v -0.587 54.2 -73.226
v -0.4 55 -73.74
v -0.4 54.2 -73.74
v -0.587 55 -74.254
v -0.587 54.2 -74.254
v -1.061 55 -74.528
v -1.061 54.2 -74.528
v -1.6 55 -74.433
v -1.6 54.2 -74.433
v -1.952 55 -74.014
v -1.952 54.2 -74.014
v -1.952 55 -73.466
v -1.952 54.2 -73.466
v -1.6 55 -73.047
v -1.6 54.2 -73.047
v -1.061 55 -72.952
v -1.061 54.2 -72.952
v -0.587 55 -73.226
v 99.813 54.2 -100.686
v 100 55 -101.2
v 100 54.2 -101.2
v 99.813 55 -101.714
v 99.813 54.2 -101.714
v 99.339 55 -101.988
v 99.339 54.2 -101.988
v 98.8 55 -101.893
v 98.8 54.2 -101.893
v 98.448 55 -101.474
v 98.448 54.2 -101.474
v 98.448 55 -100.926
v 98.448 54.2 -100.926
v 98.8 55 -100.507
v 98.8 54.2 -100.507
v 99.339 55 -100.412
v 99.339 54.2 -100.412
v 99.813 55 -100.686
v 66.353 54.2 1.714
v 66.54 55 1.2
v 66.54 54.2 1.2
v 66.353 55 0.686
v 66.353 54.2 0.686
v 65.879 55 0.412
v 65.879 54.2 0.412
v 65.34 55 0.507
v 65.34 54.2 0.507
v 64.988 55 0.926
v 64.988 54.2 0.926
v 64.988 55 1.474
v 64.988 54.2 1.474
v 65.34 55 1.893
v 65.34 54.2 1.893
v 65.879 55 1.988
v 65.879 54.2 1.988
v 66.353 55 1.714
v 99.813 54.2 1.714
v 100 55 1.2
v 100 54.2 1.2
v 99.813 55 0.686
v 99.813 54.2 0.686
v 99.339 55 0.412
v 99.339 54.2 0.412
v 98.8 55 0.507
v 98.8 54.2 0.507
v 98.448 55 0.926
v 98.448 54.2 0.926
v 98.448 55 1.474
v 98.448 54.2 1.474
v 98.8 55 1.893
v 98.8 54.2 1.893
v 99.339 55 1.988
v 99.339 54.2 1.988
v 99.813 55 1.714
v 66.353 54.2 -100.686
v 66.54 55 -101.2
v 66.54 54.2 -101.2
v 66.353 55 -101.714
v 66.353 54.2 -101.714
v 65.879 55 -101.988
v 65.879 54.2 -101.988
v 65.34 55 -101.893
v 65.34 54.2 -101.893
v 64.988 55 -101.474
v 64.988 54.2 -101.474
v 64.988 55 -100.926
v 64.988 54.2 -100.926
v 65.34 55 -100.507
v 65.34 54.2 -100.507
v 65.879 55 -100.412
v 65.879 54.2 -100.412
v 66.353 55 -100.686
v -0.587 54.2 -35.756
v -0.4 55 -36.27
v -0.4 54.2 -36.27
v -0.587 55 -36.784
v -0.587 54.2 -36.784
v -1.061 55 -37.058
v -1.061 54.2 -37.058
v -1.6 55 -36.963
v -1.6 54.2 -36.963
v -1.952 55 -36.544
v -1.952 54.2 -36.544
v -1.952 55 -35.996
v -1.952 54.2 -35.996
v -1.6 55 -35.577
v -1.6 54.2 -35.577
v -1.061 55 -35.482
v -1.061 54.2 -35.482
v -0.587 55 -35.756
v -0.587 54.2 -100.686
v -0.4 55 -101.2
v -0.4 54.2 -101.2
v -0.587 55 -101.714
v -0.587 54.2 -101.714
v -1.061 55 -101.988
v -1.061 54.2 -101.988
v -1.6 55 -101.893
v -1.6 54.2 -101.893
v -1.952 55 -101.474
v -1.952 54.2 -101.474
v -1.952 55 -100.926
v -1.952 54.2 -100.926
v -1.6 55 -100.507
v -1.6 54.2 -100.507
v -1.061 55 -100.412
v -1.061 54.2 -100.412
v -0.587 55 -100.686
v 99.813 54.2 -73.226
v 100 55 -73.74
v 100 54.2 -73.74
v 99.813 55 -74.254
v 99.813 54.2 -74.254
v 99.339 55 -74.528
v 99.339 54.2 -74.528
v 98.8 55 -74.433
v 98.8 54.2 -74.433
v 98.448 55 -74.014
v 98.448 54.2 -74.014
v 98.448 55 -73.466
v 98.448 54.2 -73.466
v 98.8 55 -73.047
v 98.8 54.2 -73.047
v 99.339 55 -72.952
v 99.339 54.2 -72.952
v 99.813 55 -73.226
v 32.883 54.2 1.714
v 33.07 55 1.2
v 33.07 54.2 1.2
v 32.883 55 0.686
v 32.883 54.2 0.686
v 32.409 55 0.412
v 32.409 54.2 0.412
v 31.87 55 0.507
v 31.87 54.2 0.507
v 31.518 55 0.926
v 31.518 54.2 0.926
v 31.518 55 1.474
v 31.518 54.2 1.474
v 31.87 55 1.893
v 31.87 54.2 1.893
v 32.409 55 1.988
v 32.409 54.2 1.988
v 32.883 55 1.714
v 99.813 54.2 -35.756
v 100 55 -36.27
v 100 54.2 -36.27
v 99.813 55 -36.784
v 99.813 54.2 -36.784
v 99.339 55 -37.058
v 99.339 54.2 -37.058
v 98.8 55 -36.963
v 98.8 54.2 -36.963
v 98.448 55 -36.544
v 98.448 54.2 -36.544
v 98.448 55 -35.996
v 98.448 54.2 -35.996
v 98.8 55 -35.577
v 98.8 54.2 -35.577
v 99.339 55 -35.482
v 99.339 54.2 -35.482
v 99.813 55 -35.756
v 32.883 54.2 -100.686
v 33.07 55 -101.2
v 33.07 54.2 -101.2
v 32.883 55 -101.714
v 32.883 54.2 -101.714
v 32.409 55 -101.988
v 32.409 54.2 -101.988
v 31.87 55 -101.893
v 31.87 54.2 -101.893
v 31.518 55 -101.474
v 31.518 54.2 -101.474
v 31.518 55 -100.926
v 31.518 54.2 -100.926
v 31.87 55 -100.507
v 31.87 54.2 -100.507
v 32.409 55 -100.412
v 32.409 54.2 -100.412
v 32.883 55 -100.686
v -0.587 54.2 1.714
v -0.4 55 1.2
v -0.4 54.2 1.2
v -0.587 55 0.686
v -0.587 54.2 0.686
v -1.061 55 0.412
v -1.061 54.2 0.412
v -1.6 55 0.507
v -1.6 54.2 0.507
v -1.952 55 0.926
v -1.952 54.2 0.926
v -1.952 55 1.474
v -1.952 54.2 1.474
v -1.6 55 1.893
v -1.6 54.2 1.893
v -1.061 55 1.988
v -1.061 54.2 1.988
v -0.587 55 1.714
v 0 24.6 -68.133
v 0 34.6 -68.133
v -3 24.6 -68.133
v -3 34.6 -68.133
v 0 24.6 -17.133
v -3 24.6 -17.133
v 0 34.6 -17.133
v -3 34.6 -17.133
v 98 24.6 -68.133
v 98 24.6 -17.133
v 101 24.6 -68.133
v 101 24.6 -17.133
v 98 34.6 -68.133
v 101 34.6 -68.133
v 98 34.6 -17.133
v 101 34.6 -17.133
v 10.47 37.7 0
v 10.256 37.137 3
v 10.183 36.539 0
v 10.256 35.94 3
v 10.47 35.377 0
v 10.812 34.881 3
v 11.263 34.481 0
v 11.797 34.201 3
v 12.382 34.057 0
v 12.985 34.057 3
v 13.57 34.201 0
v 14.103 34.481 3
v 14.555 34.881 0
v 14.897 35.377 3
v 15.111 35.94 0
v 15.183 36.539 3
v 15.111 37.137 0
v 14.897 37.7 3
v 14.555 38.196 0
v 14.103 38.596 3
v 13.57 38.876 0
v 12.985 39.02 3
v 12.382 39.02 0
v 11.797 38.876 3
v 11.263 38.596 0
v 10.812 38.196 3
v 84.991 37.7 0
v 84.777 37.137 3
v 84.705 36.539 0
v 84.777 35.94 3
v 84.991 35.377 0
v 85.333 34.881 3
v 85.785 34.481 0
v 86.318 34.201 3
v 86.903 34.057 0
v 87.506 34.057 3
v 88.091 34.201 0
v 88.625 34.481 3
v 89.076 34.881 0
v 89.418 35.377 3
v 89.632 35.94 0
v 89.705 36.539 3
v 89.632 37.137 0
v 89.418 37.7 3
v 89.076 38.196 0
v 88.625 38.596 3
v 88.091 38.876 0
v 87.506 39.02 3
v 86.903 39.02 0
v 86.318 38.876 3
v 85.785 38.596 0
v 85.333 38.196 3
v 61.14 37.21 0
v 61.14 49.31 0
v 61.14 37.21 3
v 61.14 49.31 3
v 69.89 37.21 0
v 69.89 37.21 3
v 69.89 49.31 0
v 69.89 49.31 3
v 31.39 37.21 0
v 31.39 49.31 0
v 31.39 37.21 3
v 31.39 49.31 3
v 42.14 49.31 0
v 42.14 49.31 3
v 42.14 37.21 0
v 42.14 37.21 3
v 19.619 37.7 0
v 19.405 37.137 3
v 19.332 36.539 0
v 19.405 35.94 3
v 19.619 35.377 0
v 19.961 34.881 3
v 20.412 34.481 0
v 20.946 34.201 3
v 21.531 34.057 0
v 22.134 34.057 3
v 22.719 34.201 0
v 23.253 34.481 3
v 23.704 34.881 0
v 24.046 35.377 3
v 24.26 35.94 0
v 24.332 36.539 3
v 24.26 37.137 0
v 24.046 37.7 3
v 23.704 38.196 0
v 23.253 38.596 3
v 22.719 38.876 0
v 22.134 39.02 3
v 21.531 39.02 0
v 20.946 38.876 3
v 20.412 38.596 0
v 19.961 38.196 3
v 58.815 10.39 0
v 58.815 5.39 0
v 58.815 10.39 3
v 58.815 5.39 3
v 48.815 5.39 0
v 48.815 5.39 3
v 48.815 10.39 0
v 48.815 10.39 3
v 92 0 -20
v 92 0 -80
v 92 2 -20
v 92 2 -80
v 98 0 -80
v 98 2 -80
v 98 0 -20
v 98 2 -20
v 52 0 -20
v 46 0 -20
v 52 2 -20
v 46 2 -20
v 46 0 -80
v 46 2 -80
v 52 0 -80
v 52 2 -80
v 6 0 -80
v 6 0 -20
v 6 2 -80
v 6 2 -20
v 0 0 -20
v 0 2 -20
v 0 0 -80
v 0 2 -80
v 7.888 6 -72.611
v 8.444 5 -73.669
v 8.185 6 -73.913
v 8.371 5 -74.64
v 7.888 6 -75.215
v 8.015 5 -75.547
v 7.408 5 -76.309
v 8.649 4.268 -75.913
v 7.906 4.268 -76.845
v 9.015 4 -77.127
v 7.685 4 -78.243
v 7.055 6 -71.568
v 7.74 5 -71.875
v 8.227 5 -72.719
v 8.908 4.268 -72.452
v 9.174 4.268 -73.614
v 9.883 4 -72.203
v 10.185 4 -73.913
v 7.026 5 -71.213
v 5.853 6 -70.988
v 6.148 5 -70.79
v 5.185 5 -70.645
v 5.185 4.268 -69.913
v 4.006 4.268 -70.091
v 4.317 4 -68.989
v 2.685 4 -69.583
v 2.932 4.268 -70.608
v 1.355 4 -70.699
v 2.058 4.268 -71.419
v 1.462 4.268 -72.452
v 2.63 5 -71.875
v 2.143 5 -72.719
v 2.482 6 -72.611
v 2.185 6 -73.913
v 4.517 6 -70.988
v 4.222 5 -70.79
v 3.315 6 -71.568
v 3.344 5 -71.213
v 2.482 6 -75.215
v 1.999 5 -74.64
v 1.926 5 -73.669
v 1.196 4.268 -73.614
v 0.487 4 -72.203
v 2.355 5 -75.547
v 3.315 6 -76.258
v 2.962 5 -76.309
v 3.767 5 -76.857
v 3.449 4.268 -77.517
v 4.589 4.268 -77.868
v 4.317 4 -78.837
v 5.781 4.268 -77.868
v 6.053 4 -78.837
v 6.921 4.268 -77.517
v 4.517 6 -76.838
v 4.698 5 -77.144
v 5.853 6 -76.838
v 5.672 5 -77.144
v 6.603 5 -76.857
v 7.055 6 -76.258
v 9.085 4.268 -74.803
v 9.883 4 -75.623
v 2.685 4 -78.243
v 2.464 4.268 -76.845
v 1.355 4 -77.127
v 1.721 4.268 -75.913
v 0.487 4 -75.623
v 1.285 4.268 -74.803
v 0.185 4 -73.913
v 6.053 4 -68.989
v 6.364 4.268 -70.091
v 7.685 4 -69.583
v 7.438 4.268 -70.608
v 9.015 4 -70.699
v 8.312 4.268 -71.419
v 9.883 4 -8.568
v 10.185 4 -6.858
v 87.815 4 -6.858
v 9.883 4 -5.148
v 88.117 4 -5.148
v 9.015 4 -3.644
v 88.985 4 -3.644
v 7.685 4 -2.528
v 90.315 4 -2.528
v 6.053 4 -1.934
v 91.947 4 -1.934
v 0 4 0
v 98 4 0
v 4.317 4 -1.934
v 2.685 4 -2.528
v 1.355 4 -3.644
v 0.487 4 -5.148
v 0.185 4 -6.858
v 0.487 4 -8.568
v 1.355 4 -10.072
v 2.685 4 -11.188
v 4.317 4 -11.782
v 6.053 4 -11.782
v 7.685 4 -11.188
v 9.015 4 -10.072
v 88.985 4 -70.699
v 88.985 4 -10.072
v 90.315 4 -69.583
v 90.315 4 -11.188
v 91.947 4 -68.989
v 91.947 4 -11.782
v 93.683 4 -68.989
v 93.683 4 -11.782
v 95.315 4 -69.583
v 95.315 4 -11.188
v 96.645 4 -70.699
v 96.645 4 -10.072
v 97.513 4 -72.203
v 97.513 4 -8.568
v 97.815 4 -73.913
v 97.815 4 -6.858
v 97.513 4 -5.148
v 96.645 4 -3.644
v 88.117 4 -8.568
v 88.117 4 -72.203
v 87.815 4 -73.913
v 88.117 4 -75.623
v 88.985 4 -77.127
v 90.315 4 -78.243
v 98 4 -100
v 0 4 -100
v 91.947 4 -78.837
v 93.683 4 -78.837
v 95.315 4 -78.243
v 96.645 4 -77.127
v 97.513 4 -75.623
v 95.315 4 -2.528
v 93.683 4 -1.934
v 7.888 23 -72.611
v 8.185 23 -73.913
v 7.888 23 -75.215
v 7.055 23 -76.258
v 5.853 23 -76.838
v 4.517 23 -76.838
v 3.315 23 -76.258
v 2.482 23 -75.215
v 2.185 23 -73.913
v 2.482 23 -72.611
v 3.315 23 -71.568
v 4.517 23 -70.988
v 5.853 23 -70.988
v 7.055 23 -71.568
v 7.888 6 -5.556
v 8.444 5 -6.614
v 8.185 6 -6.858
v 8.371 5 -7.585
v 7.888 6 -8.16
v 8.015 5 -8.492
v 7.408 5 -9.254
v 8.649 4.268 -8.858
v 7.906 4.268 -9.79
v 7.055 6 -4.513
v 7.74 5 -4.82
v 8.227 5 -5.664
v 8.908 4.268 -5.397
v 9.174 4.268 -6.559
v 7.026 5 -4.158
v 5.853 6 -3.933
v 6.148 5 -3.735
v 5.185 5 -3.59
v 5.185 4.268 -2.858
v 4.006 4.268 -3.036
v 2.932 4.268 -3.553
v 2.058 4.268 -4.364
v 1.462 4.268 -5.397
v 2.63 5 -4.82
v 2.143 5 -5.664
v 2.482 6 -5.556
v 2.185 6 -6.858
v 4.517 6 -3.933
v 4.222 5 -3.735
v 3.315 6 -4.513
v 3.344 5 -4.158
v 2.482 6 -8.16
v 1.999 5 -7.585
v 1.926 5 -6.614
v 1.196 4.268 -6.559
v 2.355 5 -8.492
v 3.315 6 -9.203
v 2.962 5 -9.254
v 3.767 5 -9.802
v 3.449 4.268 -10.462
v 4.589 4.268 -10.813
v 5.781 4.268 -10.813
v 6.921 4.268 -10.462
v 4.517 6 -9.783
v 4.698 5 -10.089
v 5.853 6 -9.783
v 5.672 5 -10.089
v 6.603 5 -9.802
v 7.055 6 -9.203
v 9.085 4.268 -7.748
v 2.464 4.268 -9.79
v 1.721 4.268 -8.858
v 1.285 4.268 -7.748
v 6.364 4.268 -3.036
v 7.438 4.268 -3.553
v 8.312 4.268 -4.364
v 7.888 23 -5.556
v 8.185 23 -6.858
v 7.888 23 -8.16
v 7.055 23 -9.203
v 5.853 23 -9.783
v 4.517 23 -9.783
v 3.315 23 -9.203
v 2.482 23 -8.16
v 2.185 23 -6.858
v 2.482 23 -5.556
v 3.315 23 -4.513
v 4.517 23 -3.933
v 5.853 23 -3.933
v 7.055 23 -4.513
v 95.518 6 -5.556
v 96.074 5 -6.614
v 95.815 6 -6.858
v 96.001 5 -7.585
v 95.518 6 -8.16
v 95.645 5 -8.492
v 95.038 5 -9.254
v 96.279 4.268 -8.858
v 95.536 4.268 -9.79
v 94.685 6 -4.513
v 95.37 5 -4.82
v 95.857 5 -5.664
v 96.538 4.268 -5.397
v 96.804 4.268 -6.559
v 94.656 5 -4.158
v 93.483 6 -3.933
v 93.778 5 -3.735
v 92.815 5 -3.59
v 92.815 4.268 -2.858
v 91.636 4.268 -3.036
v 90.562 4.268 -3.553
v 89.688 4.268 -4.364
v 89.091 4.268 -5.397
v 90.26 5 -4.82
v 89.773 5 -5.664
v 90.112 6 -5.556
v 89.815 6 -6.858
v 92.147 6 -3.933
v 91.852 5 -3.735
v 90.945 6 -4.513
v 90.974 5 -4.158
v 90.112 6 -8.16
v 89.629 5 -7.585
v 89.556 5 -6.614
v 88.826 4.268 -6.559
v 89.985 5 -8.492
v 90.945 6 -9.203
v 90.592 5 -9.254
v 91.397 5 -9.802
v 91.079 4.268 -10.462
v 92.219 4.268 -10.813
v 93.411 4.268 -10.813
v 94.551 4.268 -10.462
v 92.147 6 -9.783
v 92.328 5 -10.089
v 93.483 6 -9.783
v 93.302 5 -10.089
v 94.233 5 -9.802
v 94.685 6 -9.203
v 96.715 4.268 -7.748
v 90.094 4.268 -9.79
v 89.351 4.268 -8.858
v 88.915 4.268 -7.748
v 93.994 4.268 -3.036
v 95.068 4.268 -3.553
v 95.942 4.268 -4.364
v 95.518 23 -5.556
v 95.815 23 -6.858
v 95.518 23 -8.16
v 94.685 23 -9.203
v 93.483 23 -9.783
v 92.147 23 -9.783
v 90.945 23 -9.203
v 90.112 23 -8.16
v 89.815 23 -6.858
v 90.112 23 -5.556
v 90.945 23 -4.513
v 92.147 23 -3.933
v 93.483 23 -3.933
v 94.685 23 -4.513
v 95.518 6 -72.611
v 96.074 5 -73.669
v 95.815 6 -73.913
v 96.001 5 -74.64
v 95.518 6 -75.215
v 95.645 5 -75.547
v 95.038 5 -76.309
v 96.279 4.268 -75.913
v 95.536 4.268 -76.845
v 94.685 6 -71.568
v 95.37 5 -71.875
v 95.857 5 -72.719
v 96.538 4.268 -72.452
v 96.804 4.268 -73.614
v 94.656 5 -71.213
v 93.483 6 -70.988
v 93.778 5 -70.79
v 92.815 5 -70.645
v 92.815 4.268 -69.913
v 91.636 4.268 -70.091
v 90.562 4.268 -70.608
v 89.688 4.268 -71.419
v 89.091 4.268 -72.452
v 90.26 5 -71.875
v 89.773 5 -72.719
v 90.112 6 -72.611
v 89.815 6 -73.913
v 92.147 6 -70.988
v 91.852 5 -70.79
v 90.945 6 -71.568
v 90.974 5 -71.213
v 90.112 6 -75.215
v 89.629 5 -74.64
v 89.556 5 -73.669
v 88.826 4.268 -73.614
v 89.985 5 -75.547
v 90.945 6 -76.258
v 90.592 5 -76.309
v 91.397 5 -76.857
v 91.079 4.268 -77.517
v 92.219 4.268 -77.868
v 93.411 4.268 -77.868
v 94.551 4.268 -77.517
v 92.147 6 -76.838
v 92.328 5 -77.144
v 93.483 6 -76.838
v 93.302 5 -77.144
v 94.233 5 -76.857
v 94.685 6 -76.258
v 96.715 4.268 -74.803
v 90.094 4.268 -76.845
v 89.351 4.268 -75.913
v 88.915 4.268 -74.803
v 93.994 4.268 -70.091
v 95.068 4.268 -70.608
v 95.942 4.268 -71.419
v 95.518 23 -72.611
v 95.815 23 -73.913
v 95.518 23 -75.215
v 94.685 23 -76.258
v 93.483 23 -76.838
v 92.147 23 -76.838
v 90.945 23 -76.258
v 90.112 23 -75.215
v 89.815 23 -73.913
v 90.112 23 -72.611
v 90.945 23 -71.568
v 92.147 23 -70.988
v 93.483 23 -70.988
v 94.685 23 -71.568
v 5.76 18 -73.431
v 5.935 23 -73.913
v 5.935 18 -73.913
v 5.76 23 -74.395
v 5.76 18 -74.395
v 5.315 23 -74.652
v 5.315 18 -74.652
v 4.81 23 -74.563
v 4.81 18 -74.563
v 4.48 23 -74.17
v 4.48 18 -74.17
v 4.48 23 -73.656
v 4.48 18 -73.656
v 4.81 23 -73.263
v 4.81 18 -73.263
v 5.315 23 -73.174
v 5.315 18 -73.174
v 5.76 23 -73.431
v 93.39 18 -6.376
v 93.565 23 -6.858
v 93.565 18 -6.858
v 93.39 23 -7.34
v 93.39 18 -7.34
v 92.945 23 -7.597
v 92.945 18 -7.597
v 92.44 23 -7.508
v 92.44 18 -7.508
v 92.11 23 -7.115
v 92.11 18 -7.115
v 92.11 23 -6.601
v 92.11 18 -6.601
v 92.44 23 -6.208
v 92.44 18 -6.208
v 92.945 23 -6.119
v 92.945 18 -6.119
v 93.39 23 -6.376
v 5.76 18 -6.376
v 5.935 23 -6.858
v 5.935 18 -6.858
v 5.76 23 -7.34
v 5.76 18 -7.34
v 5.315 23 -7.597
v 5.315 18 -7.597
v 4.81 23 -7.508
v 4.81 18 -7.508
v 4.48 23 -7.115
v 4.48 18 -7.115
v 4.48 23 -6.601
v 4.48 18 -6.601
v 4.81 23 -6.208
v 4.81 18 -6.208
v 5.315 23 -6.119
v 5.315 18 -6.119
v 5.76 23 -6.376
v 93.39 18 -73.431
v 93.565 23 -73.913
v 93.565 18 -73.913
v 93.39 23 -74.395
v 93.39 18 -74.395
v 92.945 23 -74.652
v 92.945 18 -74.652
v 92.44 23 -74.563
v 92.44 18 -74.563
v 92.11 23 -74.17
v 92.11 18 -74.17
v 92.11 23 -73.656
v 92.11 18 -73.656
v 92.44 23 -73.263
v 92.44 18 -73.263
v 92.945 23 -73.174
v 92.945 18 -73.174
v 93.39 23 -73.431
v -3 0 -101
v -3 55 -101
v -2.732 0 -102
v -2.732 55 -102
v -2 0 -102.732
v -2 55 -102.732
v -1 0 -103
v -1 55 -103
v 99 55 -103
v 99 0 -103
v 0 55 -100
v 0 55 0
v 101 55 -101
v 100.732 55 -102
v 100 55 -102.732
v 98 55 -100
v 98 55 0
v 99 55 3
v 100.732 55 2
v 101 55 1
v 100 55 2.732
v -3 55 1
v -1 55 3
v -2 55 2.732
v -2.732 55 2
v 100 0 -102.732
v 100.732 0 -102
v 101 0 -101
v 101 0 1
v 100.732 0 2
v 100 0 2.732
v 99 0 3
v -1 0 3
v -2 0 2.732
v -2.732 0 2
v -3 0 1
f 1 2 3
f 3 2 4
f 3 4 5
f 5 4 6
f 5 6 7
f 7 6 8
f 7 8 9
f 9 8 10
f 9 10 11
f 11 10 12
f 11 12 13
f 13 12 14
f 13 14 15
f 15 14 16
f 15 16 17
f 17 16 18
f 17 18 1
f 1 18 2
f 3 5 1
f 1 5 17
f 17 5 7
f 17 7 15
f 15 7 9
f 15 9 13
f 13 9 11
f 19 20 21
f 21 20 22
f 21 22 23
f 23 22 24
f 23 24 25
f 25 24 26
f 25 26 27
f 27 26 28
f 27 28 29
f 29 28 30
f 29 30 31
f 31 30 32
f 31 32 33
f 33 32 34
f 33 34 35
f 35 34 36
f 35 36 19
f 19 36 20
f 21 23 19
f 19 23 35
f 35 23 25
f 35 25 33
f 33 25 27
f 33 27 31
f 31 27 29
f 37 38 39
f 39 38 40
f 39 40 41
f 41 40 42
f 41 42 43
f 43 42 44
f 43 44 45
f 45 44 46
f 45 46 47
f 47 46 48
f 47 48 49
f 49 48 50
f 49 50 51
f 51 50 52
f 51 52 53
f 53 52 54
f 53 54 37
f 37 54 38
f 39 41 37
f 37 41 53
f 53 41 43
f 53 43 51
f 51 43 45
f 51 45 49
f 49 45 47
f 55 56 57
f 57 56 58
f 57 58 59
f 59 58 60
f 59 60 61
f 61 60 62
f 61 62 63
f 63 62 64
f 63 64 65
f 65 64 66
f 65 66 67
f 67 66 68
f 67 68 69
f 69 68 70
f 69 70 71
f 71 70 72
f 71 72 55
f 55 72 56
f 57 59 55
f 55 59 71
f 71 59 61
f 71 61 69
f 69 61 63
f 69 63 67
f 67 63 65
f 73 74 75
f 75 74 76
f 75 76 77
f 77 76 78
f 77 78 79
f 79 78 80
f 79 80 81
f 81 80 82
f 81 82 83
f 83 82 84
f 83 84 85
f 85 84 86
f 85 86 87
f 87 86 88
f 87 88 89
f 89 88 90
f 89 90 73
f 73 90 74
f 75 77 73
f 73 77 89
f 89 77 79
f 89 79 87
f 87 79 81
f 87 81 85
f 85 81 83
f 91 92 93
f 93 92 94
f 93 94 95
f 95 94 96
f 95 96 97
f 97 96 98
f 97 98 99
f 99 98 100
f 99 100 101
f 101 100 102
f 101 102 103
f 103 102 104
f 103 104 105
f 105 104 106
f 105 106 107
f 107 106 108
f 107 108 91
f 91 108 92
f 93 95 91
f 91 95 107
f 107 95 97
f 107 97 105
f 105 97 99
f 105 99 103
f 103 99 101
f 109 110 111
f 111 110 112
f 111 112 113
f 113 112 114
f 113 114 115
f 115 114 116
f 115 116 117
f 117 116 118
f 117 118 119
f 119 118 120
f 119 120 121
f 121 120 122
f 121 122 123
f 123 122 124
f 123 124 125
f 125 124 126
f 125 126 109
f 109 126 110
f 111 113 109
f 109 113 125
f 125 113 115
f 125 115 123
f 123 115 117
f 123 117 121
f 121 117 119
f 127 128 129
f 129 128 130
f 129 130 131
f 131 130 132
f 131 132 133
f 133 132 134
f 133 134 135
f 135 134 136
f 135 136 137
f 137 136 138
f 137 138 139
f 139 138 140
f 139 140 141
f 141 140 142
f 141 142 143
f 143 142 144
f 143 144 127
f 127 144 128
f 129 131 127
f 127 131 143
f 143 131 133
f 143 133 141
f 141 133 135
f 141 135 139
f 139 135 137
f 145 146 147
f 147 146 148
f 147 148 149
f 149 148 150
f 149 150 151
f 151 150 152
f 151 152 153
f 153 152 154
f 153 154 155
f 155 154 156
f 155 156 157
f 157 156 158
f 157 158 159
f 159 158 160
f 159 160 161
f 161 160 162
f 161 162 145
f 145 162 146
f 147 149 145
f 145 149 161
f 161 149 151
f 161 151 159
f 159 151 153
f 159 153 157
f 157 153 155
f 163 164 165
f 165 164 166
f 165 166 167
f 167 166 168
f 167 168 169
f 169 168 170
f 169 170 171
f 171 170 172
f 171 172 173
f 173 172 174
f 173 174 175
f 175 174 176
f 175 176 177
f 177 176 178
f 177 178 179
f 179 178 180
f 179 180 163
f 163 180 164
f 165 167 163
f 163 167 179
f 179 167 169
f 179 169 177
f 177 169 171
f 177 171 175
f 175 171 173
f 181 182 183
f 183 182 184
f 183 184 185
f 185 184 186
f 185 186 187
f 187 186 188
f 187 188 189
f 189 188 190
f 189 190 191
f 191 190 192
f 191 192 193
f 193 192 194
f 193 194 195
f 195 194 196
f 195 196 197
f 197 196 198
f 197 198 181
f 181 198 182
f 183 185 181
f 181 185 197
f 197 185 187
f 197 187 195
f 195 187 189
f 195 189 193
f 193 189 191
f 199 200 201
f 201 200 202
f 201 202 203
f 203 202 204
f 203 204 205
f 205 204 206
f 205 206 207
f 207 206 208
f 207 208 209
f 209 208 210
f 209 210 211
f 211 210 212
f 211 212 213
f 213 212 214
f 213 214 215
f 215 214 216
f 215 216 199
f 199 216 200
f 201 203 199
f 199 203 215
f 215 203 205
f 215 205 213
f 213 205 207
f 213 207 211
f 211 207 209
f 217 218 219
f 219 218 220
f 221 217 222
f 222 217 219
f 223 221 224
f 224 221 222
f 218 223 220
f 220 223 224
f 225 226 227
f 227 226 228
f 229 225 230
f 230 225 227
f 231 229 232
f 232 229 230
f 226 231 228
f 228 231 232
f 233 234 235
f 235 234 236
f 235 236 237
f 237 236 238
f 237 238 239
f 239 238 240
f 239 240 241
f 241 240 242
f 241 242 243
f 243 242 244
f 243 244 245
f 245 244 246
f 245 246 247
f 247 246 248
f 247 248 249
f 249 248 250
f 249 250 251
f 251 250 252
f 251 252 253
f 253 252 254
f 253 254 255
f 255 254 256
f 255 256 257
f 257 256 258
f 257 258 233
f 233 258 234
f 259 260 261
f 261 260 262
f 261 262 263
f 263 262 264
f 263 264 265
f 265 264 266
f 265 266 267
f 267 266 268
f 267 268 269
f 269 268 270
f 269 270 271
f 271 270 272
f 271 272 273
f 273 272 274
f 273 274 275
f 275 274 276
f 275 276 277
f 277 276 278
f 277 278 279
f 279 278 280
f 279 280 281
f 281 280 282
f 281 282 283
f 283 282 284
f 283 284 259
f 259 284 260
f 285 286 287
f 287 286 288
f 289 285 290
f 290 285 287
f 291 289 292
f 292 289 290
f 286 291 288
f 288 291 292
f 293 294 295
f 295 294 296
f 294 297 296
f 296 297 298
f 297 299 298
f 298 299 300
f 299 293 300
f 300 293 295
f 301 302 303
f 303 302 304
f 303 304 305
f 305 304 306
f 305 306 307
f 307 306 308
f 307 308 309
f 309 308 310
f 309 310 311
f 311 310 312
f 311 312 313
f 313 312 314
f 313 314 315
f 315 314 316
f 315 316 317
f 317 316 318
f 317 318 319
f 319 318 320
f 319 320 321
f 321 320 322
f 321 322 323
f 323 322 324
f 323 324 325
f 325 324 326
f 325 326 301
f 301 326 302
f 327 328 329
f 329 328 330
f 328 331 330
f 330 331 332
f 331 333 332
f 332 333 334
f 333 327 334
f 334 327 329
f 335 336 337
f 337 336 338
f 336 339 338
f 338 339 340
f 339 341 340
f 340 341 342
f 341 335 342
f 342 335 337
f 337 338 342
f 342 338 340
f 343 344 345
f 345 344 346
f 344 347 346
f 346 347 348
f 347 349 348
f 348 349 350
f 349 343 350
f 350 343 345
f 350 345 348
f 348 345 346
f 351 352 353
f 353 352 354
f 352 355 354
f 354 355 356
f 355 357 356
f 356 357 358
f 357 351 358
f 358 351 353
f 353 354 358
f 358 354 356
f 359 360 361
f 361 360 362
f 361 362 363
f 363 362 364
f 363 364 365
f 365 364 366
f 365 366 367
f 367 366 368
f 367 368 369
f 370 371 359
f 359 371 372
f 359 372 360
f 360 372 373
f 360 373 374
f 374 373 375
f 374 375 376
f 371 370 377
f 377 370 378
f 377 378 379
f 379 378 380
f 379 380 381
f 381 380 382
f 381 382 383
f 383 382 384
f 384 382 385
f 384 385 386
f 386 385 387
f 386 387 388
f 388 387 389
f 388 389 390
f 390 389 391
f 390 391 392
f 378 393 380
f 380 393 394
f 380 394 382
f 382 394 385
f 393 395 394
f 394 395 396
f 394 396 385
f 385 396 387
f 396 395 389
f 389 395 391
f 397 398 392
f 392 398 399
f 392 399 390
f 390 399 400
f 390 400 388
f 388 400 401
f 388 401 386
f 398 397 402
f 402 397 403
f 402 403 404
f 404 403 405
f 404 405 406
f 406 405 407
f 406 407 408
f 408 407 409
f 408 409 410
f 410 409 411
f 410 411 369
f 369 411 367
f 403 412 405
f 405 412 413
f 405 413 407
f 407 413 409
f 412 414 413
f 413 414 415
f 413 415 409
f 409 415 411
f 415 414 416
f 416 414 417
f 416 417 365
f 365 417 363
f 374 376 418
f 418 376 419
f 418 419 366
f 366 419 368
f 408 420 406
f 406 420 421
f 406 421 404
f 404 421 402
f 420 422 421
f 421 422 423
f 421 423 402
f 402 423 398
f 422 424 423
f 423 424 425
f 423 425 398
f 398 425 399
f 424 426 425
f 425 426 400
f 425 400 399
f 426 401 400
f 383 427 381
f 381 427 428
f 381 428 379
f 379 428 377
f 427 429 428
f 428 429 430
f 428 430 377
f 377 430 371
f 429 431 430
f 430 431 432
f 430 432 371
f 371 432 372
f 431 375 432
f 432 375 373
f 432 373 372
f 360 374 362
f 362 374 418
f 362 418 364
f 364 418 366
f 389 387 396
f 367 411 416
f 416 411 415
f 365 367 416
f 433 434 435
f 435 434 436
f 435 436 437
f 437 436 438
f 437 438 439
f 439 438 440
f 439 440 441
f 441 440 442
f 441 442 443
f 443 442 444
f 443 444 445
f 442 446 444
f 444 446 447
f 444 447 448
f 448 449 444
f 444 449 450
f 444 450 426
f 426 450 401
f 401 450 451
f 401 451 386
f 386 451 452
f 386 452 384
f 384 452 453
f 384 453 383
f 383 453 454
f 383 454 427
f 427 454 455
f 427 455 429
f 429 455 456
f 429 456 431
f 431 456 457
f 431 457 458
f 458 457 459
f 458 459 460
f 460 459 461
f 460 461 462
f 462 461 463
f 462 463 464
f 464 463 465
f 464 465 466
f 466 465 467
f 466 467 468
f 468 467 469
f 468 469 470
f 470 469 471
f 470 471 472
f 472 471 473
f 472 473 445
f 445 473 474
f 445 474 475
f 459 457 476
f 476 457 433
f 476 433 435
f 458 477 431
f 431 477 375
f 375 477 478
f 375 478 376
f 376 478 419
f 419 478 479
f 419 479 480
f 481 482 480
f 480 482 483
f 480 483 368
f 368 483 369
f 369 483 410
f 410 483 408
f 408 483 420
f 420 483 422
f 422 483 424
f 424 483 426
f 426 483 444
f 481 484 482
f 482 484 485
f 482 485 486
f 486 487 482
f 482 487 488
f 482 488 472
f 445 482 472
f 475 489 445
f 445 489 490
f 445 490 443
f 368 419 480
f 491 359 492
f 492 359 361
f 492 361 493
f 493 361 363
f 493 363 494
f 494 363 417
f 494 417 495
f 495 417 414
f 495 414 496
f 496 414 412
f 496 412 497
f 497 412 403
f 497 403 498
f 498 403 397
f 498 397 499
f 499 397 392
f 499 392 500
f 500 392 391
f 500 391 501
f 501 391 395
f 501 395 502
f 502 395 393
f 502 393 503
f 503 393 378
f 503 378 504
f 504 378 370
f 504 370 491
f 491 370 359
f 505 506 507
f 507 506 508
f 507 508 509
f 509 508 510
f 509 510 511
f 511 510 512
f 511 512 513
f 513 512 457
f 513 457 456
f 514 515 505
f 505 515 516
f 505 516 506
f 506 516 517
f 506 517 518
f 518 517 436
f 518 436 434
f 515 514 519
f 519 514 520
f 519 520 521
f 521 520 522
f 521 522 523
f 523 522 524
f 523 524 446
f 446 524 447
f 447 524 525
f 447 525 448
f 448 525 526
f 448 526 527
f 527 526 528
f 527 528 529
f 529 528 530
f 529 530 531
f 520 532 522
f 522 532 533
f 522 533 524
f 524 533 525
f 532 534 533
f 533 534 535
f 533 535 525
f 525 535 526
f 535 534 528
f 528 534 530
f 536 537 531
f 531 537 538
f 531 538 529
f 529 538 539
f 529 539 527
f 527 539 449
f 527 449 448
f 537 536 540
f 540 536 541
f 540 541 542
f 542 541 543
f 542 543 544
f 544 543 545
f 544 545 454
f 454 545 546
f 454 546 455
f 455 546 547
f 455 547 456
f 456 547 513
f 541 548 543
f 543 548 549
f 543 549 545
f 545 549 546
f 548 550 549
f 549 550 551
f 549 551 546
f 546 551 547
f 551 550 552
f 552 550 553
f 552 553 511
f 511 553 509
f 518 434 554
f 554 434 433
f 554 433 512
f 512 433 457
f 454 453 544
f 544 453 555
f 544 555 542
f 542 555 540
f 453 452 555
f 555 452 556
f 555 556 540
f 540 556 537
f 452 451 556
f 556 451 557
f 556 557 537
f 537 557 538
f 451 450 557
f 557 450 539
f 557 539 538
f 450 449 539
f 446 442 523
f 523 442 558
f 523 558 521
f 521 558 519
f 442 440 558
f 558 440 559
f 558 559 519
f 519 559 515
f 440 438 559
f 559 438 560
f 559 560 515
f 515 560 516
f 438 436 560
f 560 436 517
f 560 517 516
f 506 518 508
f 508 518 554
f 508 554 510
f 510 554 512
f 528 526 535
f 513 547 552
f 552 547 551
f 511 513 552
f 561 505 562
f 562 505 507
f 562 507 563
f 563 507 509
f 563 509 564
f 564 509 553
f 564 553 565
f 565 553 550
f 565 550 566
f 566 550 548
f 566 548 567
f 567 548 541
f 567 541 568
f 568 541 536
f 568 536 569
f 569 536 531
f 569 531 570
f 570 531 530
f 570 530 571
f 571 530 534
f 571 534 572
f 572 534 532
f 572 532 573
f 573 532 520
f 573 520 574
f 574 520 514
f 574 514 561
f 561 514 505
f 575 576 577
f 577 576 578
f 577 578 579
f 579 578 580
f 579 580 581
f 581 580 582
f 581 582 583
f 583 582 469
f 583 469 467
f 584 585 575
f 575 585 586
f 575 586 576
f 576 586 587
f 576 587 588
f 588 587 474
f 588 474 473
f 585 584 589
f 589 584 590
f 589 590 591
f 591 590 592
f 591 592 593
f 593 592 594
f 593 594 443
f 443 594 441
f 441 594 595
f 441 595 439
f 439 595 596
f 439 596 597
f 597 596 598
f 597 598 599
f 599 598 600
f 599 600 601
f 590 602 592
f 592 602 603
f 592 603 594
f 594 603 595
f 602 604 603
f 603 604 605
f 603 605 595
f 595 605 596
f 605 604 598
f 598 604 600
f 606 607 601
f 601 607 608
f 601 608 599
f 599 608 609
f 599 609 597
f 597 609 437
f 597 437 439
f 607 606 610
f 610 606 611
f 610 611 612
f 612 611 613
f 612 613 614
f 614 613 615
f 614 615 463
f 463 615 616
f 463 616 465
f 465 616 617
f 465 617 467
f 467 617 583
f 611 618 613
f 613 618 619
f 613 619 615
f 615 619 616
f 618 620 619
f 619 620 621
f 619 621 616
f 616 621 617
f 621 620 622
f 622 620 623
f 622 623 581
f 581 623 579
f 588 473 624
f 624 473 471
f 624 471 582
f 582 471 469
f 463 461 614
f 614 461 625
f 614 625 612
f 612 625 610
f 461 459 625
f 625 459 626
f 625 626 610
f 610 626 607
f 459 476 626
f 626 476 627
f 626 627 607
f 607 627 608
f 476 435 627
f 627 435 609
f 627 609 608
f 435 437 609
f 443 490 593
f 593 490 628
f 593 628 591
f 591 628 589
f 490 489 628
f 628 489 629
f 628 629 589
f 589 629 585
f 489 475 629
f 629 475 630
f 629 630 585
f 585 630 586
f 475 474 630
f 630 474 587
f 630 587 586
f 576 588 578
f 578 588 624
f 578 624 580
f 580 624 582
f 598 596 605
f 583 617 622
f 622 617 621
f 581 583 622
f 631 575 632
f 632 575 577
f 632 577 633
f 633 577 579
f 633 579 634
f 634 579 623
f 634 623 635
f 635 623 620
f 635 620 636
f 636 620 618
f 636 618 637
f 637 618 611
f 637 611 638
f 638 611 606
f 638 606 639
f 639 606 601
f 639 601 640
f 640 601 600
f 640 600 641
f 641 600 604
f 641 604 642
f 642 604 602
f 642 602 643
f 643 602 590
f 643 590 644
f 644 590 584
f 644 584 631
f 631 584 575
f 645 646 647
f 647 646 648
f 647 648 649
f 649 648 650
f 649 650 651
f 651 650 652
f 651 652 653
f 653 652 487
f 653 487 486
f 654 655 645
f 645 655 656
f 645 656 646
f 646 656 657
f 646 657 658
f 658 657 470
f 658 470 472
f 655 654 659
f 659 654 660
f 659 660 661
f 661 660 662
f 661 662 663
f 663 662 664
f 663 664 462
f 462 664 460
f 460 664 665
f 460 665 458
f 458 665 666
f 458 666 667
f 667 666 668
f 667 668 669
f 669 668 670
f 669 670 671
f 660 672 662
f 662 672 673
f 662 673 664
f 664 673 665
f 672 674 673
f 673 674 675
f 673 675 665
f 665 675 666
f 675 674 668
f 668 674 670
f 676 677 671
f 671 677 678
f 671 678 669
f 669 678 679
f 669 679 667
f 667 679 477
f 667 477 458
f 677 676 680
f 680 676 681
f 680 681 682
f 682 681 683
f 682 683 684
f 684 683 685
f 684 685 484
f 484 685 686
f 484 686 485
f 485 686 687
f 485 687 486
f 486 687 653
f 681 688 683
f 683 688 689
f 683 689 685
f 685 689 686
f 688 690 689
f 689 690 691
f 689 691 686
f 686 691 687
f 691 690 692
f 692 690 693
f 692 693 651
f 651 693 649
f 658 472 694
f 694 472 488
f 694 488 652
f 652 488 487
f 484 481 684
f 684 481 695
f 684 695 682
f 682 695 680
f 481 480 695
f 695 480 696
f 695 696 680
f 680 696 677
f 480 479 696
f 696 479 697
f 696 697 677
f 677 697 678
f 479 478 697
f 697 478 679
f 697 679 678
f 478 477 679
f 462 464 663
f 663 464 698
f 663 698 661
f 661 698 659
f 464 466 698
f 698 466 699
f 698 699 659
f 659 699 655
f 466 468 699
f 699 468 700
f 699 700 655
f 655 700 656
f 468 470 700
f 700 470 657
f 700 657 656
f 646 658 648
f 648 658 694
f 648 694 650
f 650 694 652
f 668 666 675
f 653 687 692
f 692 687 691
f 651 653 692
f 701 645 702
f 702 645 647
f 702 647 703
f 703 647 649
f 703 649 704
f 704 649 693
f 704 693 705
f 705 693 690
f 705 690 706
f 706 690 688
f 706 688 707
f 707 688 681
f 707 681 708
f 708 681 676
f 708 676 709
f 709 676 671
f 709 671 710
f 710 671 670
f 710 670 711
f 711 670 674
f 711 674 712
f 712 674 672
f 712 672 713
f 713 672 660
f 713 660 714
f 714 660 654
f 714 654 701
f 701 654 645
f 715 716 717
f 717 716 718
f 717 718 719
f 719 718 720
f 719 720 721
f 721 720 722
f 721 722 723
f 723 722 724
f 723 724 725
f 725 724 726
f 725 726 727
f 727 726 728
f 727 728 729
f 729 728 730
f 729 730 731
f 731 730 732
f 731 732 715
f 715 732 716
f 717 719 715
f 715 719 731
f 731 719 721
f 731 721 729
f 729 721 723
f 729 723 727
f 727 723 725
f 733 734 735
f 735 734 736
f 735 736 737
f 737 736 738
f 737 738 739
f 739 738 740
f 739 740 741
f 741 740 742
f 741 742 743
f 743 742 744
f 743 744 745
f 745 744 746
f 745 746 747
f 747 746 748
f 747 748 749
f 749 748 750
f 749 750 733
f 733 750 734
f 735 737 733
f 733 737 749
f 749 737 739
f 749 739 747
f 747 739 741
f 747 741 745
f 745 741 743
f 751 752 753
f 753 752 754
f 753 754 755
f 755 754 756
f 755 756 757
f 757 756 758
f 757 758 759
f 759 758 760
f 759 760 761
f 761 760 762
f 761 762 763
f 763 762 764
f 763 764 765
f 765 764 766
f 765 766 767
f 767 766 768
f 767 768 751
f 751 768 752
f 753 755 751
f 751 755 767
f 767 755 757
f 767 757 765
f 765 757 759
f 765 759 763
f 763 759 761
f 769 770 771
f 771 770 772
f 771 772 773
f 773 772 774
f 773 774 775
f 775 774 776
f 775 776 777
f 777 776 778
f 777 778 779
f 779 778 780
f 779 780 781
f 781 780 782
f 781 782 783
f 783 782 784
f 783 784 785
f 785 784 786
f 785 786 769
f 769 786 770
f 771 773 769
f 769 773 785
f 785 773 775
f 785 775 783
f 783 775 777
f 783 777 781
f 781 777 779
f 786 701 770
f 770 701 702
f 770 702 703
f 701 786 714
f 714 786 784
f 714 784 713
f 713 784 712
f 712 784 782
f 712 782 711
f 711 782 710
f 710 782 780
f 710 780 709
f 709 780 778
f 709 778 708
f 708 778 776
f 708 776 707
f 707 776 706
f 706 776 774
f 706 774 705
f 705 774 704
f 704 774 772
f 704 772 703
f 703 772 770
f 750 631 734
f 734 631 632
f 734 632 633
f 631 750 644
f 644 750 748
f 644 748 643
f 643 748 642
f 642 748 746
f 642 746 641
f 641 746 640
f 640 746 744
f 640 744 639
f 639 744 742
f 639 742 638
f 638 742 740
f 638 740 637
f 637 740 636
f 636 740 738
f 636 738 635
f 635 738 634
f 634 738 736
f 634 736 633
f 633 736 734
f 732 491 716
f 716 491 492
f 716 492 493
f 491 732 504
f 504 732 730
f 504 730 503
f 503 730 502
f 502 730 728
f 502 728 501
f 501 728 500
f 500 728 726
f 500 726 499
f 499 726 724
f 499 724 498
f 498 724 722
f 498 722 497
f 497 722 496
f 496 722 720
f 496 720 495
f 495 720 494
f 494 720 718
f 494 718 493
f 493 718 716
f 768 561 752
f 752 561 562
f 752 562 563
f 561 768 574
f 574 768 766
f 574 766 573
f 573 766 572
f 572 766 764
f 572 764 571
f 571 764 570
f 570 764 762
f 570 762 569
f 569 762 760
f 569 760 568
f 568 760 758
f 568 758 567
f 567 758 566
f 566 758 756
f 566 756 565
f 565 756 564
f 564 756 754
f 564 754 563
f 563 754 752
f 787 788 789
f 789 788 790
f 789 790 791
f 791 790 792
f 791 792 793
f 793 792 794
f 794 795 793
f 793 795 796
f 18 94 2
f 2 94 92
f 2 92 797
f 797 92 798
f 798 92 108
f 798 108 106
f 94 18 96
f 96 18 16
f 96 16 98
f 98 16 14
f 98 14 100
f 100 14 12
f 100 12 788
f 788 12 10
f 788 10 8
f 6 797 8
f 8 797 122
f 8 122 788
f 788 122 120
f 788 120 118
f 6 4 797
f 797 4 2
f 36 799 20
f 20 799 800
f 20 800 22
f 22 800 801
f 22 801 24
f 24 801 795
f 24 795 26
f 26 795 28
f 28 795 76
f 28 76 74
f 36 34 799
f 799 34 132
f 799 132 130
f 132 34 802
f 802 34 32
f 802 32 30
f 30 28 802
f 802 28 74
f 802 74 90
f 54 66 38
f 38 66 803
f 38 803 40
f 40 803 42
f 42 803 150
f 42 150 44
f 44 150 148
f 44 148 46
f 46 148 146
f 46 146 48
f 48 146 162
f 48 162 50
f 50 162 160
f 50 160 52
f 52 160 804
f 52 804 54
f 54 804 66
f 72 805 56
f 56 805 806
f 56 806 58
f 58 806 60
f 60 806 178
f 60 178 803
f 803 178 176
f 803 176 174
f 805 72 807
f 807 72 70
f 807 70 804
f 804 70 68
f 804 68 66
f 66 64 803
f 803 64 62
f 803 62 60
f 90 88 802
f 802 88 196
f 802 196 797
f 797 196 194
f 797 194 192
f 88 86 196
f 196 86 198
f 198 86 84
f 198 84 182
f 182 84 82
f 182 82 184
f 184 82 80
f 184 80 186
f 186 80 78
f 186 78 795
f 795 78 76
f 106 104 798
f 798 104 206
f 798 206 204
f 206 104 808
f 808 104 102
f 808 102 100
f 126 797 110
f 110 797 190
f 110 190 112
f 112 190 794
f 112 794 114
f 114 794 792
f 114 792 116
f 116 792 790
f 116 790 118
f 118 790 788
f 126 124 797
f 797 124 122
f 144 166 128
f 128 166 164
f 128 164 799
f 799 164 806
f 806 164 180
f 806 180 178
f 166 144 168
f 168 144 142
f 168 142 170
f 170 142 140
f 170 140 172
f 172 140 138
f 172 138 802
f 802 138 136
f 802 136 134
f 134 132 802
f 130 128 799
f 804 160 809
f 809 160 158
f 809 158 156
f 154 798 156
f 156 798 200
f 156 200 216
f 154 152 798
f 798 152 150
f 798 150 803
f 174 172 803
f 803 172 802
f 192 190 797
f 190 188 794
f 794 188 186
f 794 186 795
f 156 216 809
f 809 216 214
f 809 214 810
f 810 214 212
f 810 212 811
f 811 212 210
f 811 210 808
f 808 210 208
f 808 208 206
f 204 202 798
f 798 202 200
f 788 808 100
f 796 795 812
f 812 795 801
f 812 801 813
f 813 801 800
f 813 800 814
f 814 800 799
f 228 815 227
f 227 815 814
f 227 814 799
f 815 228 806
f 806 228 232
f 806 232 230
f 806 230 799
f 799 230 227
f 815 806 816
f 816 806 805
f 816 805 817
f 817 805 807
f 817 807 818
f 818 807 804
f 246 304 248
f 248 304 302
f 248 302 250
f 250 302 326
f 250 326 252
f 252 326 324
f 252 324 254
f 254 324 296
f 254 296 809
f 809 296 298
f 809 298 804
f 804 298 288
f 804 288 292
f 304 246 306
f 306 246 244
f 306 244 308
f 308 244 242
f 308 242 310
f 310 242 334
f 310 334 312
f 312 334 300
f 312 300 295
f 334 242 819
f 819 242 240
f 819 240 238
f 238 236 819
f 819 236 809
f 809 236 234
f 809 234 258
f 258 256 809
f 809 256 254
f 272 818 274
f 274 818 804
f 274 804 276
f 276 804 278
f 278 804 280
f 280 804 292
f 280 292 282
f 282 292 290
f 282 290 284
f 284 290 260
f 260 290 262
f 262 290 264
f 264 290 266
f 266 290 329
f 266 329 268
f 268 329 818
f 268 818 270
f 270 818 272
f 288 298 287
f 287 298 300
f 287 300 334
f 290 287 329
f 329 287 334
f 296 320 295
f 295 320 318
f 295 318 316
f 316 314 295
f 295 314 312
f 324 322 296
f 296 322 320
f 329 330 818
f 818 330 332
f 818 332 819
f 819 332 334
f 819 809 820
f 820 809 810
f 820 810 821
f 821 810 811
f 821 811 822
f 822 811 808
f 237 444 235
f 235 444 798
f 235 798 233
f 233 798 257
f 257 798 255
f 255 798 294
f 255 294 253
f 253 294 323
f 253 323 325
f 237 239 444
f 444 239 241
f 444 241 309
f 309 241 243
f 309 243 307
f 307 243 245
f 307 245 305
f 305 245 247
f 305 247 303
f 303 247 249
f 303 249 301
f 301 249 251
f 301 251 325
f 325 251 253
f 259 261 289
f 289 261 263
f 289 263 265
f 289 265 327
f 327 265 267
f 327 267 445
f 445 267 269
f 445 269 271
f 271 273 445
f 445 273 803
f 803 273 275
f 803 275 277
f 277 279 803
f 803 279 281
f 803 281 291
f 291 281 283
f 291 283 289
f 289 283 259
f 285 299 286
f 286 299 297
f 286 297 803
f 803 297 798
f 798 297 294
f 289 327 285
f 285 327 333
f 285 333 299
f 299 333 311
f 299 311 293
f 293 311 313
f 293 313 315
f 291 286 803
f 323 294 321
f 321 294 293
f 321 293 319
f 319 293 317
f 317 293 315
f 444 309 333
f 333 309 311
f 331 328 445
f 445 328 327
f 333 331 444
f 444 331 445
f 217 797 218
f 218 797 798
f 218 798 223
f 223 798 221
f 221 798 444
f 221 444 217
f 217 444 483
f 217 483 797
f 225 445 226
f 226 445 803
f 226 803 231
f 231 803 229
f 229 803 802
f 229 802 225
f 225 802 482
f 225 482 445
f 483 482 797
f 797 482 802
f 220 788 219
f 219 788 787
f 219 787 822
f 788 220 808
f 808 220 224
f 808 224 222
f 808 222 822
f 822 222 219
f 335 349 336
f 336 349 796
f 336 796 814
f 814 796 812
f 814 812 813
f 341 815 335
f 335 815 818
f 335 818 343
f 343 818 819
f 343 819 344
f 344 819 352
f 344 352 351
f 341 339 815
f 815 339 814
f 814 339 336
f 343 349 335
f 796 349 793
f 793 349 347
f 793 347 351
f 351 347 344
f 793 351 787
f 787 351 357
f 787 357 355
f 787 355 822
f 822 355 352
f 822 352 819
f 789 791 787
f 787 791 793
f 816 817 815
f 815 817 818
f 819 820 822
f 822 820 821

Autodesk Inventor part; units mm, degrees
ref_plane "YZ Plane" through (0, 0, 0) normal (1, 0, 0) x (0, 1, 0)
ref_plane "XZ Plane" through (0, 0, 0) normal (0, 1, 0) x (-1, 0, 0)
ref_plane "XY Plane" through (0, 0, 0) normal (0, 0, 1) x (1, 0, 0)
sketch "Sketch1" plane through (0, 0, 0) normal (0, 1, 0) x (-1, 0, 0)
  line L0 (0, 0) -> (-98, 0)
  line L1 (-98, 0) -> (-98, -100)
  line L2 (-98, -100) -> (0, -100)
  line L3 (0, -100) -> (0, 0)
  line L4 (3, -103) -> (-101, -103)
  line L5 (-101, -103) -> (-101, 3)
  line L6 (-101, 3) -> (3, 3)
  line L7 (3, 3) -> (3, -103)
  line L8 (0, -20) -> (-6, -20)
  line L9 (-6, -20) -> (-6, -80)
  line L10 (-6, -80) -> (0, -80)
  line L11 (0, -80) -> (0, -20)
  line L12 (-46, -20) -> (-52, -20)
  line L13 (-52, -20) -> (-52, -80)
  line L14 (-52, -80) -> (-46, -80)
  line L15 (-46, -80) -> (-46, -20)
  line L16 (-92, -20) -> (-98, -20)
  line L17 (-98, -20) -> (-98, -80)
  line L18 (-98, -80) -> (-92, -80)
  line L19 (-92, -80) -> (-92, -20)
  point P0 (-49, -20)
  point P1 (-6, -50)
  point P2 (-98, -20)
  point P3 (-98, -80)
  point P4 (0, -80)
  point P5 (0, -20)
  dimension "d0" = 100
  dimension "d1" = 98
  dimension "d2" = 3
  dimension "d48" = 6
  dimension "d49" = 60
  dimension "d50" = 6
  dimension "d51" = 60
  dimension "d52" = 6
  dimension "d53" = 60
  dimension "d54" = 49
  dimension "d55" = 50
extrude "Extrusion1" add sketch "Sketch1" along normal blind 4 contours L3 L8 L9 L10 L2 L1 L18 L19 L16 L0 | L3 L10 L9 L8 | L16 L19 L18 L1 | L15 L14 L13 L12
extrude "Extrusion2" add sketch "Sketch1" along normal blind 55 contours L4 L5 L6 L7
fillet "Fillet1" radius 2 4 edges at (-3, 27.5, 3) (101, 27.5, 3) (101, 27.5, -103) (-3, 27.5, -103)
sketch "Sketch2" plane through (0, 4, 0) normal (0, 1, 0) x (1, 0, 0)
  line L0 (98, 0) -> (98, 100) projected
  line L1 (98, 100) -> (0, 100) projected
  line L2 (0, 100) -> (0, 0) projected
  line L3 (0, 0) -> (98, 0) projected
  circle A0 centre (5.185, 73.913) radius 3
  circle A1 centre (5.185, 6.858) radius 3
  circle A2 centre (92.815, 6.858) radius 3
  circle A3 centre (92.815, 73.913) radius 3
  dimension "d8" = 6
  dimension "d9" = 6
  dimension "d10" = 6
  dimension "d11" = 6
  dimension "d12" = 67.055
  dimension "d13" = 87.63
  dimension "d16" = 6.858
  dimension "d17" = 5.185
extrude "Extrusion3" add sketch "Sketch2" along normal blind 19 contours A0 | A1 | A2 | A3
sketch "Sketch3" plane through (92.815, 23, -73.913) normal (0, 1, 0) x (1, 0, 0)
  circle A0 centre (0, -67.055) radius 3 projected
  circle A1 centre (0, -67.055) radius 0.75
  circle A2 centre (0, 0) radius 3 projected
  circle A3 centre (0, 0) radius 0.75
  circle A4 centre (-87.63, 0) radius 3 projected
  circle A5 centre (-87.63, 0) radius 0.75
  circle A6 centre (-87.63, -67.055) radius 3 projected
  circle A7 centre (-87.63, -67.055) radius 0.75
  point P0 (-92.815, -73.913)
  dimension "d21" = 1.5
  dimension "d22" = 1.5
  dimension "d23" = 1.5
  dimension "d24" = 1.5
extrude "Extrusion4" cut sketch "Sketch3" against normal blind 5 contours A1 | A3 | A5 | A7
fillet "Fillet2" radius 2 4 edges at (89.815, 4, -73.913) (89.815, 4, -6.858) (2.185, 4, -6.858) (2.185, 4, -73.913)
extrude "Extrusion5" cut sketch "Sketch1" along normal blind 2 contours L3 L10 L9 L8 | L16 L19 L18 L1 | L15 L14 L13 L12
sketch "Sketch4" plane through (-1, 0, 3) normal (0, 0, 1) x (1, 0, 0)
  line L0 (11.185, 4) -> (1.185, 4) projected
  line L1 (98.815, 4) -> (88.815, 4) projected
  line L2 (99, 4) -> (1, 4) projected
  line L3 (1, 4) -> (99, 4) projected
  line L4 (98.815, 4) -> (88.815, 4) projected
  line L5 (11.185, 4) -> (1.185, 4) projected
  line L6 (1, 4) -> (1, 55) projected
  line L7 (1, 4) -> (1, 55) projected
  line L8 (99, 4) -> (99, 55) projected
  line L9 (99, 4) -> (99, 55) projected
  line L10 (43.14, 49.31) -> (32.39, 49.31)
  line L11 (32.39, 49.31) -> (32.39, 37.21)
  line L12 (32.39, 37.21) -> (43.14, 37.21)
  line L13 (43.14, 37.21) -> (43.14, 49.31)
  line L14 (49.815, 5.39) -> (59.815, 5.39)
  line L15 (59.815, 5.39) -> (59.815, 10.39)
  line L16 (59.815, 10.39) -> (49.815, 10.39)
  line L17 (49.815, 10.39) -> (49.815, 5.39)
  line L18 (62.14, 49.31) -> (70.89, 49.31)
  line L19 (70.89, 49.31) -> (70.89, 37.21)
  line L20 (70.89, 37.21) -> (62.14, 37.21)
  line L21 (62.14, 37.21) -> (62.14, 49.31)
  line L22 (9.185, 23) -> (3.185, 23) projected
  line L23 (96.815, 23) -> (90.815, 23) projected
  circle A0 centre (13.6833, 36.5386) radius 2.5
  circle A1 centre (22.8325, 36.5386) radius 2.5
  circle A2 centre (88.2047, 36.5386) radius 2.5
  point P0 (1, 0)
  point P1 (66.515, 37.21)
  point P2 (70.89, 43.26)
  point P3 (59.815, 7.89)
  point P4 (49.815, 7.89)
  point P5 (54.815, 5.39)
  point P6 (54.815, 10.39)
  point P7 (6.185, 23)
  point P8 (37.765, 37.21)
  point P9 (93.815, 23)
  dimension "d56" = 12.1
  dimension "d57" = 19
  dimension "d59" = 10.75
  dimension "d60" = 12.1
  dimension "d61" = 8.75
  dimension "d62" = 10
  dimension "d63" = 5
  dimension "d103" = 12.61
  dimension "d105" = 14.21
  dimension "d106" = 39
  dimension "d107" = 27.3
  dimension "d108" = 5
  dimension "d109" = 5
  dimension "d110" = 5
extrude "Extrusion6" cut sketch "Sketch4" against normal up to surface (3 mm away)
sketch "Sketch5" plane through (101, 0, 1) normal (1, 0, 0) x (0, 0, -1)
  line L0 (12.858, 4) -> (2.858, 4) projected
  line L1 (79.913, 4) -> (69.913, 4) projected
  line L2 (1, 4) -> (101, 4) projected
  line L3 (101, 4) -> (1, 4) projected
  line L4 (12.858, 4) -> (2.858, 4) projected
  line L5 (79.913, 4) -> (69.913, 4) projected
  line L6 (1, 37.21) -> (1, 49.31) projected
  line L7 (1, 49.31) -> (1, 37.21) projected
  line L8 (1, 49.31) -> (1, 37.21) projected
  line L9 (1, 37.21) -> (1, 49.31) projected
  line L10 (1, 4) -> (1, 55) projected
  line L11 (1, 4) -> (1, 55) projected
  line L12 (10.858, 23) -> (4.858, 23) projected
  line L13 (77.913, 23) -> (71.913, 23) projected
  line L14 (18.133, 24.6) -> (69.133, 24.6)
  line L15 (69.133, 24.6) -> (69.133, 34.6)
  line L16 (69.133, 34.6) -> (18.133, 34.6)
  line L17 (18.133, 34.6) -> (18.133, 24.6)
  line L18 (12.858, 4) -> (2.858, 4) projected
  line L19 (4.858, 6) -> (10.858, 6) projected
  line L20 (79.913, 4) -> (69.913, 4) projected
  line L21 (71.913, 6) -> (77.913, 6) projected
  line L22 (1, 10.39) -> (1, 5.39) projected
  line L23 (1, 5.39) -> (1, 10.39) projected
  point P0 (1, 0)
  point P1 (74.913, 23)
  dimension "d98" = 10
  dimension "d99" = 51
  dimension "d101" = 1.6
  dimension "d102" = 5.78
sketch "Sketch6" plane through (-3, 0, -101) normal (-1, 0, 0) x (0, 0, 1)
  line L0 (32.867, 34.6) -> (83.867, 34.6) projected
  line L1 (32.867, 24.6) -> (32.867, 34.6) projected
  line L2 (83.867, 24.6) -> (32.867, 24.6) projected
  line L3 (83.867, 34.6) -> (83.867, 24.6) projected
  point P0 (101, 0)
extrude "Extrusion7" cut sketch "Sketch5" against normal up to surface (3 mm away)
extrude "Extrusion8" cut sketch "Sketch6" against normal up to surface (3 mm away)
sketch "Sketch7" plane through (0, 55, 0) normal (0, 1, 0) x (1, 0, 0)
  circle A0 centre (-1.2, -1.2) radius 0.8
  circle A1 centre (99.2, -1.2) radius 0.8
  line L0 (98, 100) -> (98, 0) projected
  circle A2 centre (99.2, 101.2) radius 0.8
  line L1 (0, 100) -> (98, 100) projected
  circle A3 centre (-1.2, 101.2) radius 0.8
  line L2 (0, 0) -> (0, 100) projected
  circle A4 centre (32.27, -1.2) radius 0.8
  circle A5 centre (32.27, 101.2) radius 0.8
  circle A6 centre (65.74, -1.2) radius 0.8
  circle A7 centre (65.74, 101.2) radius 0.8
  circle A8 centre (-1.2, 36.27) radius 0.8
  circle A9 centre (99.2, 36.27) radius 0.8
  circle A10 centre (-1.2, 73.74) radius 0.8
  circle A11 centre (99.2, 73.74) radius 0.8
  dimension "d1" = 98
  dimension "d64" = 1.6
  dimension "d65" = 1.2
  dimension "d66" = 1.2
  dimension "d67" = 1.6
  dimension "d68" = 1.2
  dimension "d69" = 1.6
  dimension "d70" = 1.2
  dimension "d71" = 1.2
  dimension "d72" = 1.6
  dimension "d73" = 1.2
  dimension "d74" = 1.2
  dimension "d87" = 33.47
  dimension "d91" = 37.47
extrude "Extrusion9" cut sketch "Sketch7" against normal blind 0.8
equation "\"d54\" = 0.5 * d1"
equation "\"d55\" = 0.5 * d0"
equation "\"d60\" = d56"
properties part number "Base Chassis"
